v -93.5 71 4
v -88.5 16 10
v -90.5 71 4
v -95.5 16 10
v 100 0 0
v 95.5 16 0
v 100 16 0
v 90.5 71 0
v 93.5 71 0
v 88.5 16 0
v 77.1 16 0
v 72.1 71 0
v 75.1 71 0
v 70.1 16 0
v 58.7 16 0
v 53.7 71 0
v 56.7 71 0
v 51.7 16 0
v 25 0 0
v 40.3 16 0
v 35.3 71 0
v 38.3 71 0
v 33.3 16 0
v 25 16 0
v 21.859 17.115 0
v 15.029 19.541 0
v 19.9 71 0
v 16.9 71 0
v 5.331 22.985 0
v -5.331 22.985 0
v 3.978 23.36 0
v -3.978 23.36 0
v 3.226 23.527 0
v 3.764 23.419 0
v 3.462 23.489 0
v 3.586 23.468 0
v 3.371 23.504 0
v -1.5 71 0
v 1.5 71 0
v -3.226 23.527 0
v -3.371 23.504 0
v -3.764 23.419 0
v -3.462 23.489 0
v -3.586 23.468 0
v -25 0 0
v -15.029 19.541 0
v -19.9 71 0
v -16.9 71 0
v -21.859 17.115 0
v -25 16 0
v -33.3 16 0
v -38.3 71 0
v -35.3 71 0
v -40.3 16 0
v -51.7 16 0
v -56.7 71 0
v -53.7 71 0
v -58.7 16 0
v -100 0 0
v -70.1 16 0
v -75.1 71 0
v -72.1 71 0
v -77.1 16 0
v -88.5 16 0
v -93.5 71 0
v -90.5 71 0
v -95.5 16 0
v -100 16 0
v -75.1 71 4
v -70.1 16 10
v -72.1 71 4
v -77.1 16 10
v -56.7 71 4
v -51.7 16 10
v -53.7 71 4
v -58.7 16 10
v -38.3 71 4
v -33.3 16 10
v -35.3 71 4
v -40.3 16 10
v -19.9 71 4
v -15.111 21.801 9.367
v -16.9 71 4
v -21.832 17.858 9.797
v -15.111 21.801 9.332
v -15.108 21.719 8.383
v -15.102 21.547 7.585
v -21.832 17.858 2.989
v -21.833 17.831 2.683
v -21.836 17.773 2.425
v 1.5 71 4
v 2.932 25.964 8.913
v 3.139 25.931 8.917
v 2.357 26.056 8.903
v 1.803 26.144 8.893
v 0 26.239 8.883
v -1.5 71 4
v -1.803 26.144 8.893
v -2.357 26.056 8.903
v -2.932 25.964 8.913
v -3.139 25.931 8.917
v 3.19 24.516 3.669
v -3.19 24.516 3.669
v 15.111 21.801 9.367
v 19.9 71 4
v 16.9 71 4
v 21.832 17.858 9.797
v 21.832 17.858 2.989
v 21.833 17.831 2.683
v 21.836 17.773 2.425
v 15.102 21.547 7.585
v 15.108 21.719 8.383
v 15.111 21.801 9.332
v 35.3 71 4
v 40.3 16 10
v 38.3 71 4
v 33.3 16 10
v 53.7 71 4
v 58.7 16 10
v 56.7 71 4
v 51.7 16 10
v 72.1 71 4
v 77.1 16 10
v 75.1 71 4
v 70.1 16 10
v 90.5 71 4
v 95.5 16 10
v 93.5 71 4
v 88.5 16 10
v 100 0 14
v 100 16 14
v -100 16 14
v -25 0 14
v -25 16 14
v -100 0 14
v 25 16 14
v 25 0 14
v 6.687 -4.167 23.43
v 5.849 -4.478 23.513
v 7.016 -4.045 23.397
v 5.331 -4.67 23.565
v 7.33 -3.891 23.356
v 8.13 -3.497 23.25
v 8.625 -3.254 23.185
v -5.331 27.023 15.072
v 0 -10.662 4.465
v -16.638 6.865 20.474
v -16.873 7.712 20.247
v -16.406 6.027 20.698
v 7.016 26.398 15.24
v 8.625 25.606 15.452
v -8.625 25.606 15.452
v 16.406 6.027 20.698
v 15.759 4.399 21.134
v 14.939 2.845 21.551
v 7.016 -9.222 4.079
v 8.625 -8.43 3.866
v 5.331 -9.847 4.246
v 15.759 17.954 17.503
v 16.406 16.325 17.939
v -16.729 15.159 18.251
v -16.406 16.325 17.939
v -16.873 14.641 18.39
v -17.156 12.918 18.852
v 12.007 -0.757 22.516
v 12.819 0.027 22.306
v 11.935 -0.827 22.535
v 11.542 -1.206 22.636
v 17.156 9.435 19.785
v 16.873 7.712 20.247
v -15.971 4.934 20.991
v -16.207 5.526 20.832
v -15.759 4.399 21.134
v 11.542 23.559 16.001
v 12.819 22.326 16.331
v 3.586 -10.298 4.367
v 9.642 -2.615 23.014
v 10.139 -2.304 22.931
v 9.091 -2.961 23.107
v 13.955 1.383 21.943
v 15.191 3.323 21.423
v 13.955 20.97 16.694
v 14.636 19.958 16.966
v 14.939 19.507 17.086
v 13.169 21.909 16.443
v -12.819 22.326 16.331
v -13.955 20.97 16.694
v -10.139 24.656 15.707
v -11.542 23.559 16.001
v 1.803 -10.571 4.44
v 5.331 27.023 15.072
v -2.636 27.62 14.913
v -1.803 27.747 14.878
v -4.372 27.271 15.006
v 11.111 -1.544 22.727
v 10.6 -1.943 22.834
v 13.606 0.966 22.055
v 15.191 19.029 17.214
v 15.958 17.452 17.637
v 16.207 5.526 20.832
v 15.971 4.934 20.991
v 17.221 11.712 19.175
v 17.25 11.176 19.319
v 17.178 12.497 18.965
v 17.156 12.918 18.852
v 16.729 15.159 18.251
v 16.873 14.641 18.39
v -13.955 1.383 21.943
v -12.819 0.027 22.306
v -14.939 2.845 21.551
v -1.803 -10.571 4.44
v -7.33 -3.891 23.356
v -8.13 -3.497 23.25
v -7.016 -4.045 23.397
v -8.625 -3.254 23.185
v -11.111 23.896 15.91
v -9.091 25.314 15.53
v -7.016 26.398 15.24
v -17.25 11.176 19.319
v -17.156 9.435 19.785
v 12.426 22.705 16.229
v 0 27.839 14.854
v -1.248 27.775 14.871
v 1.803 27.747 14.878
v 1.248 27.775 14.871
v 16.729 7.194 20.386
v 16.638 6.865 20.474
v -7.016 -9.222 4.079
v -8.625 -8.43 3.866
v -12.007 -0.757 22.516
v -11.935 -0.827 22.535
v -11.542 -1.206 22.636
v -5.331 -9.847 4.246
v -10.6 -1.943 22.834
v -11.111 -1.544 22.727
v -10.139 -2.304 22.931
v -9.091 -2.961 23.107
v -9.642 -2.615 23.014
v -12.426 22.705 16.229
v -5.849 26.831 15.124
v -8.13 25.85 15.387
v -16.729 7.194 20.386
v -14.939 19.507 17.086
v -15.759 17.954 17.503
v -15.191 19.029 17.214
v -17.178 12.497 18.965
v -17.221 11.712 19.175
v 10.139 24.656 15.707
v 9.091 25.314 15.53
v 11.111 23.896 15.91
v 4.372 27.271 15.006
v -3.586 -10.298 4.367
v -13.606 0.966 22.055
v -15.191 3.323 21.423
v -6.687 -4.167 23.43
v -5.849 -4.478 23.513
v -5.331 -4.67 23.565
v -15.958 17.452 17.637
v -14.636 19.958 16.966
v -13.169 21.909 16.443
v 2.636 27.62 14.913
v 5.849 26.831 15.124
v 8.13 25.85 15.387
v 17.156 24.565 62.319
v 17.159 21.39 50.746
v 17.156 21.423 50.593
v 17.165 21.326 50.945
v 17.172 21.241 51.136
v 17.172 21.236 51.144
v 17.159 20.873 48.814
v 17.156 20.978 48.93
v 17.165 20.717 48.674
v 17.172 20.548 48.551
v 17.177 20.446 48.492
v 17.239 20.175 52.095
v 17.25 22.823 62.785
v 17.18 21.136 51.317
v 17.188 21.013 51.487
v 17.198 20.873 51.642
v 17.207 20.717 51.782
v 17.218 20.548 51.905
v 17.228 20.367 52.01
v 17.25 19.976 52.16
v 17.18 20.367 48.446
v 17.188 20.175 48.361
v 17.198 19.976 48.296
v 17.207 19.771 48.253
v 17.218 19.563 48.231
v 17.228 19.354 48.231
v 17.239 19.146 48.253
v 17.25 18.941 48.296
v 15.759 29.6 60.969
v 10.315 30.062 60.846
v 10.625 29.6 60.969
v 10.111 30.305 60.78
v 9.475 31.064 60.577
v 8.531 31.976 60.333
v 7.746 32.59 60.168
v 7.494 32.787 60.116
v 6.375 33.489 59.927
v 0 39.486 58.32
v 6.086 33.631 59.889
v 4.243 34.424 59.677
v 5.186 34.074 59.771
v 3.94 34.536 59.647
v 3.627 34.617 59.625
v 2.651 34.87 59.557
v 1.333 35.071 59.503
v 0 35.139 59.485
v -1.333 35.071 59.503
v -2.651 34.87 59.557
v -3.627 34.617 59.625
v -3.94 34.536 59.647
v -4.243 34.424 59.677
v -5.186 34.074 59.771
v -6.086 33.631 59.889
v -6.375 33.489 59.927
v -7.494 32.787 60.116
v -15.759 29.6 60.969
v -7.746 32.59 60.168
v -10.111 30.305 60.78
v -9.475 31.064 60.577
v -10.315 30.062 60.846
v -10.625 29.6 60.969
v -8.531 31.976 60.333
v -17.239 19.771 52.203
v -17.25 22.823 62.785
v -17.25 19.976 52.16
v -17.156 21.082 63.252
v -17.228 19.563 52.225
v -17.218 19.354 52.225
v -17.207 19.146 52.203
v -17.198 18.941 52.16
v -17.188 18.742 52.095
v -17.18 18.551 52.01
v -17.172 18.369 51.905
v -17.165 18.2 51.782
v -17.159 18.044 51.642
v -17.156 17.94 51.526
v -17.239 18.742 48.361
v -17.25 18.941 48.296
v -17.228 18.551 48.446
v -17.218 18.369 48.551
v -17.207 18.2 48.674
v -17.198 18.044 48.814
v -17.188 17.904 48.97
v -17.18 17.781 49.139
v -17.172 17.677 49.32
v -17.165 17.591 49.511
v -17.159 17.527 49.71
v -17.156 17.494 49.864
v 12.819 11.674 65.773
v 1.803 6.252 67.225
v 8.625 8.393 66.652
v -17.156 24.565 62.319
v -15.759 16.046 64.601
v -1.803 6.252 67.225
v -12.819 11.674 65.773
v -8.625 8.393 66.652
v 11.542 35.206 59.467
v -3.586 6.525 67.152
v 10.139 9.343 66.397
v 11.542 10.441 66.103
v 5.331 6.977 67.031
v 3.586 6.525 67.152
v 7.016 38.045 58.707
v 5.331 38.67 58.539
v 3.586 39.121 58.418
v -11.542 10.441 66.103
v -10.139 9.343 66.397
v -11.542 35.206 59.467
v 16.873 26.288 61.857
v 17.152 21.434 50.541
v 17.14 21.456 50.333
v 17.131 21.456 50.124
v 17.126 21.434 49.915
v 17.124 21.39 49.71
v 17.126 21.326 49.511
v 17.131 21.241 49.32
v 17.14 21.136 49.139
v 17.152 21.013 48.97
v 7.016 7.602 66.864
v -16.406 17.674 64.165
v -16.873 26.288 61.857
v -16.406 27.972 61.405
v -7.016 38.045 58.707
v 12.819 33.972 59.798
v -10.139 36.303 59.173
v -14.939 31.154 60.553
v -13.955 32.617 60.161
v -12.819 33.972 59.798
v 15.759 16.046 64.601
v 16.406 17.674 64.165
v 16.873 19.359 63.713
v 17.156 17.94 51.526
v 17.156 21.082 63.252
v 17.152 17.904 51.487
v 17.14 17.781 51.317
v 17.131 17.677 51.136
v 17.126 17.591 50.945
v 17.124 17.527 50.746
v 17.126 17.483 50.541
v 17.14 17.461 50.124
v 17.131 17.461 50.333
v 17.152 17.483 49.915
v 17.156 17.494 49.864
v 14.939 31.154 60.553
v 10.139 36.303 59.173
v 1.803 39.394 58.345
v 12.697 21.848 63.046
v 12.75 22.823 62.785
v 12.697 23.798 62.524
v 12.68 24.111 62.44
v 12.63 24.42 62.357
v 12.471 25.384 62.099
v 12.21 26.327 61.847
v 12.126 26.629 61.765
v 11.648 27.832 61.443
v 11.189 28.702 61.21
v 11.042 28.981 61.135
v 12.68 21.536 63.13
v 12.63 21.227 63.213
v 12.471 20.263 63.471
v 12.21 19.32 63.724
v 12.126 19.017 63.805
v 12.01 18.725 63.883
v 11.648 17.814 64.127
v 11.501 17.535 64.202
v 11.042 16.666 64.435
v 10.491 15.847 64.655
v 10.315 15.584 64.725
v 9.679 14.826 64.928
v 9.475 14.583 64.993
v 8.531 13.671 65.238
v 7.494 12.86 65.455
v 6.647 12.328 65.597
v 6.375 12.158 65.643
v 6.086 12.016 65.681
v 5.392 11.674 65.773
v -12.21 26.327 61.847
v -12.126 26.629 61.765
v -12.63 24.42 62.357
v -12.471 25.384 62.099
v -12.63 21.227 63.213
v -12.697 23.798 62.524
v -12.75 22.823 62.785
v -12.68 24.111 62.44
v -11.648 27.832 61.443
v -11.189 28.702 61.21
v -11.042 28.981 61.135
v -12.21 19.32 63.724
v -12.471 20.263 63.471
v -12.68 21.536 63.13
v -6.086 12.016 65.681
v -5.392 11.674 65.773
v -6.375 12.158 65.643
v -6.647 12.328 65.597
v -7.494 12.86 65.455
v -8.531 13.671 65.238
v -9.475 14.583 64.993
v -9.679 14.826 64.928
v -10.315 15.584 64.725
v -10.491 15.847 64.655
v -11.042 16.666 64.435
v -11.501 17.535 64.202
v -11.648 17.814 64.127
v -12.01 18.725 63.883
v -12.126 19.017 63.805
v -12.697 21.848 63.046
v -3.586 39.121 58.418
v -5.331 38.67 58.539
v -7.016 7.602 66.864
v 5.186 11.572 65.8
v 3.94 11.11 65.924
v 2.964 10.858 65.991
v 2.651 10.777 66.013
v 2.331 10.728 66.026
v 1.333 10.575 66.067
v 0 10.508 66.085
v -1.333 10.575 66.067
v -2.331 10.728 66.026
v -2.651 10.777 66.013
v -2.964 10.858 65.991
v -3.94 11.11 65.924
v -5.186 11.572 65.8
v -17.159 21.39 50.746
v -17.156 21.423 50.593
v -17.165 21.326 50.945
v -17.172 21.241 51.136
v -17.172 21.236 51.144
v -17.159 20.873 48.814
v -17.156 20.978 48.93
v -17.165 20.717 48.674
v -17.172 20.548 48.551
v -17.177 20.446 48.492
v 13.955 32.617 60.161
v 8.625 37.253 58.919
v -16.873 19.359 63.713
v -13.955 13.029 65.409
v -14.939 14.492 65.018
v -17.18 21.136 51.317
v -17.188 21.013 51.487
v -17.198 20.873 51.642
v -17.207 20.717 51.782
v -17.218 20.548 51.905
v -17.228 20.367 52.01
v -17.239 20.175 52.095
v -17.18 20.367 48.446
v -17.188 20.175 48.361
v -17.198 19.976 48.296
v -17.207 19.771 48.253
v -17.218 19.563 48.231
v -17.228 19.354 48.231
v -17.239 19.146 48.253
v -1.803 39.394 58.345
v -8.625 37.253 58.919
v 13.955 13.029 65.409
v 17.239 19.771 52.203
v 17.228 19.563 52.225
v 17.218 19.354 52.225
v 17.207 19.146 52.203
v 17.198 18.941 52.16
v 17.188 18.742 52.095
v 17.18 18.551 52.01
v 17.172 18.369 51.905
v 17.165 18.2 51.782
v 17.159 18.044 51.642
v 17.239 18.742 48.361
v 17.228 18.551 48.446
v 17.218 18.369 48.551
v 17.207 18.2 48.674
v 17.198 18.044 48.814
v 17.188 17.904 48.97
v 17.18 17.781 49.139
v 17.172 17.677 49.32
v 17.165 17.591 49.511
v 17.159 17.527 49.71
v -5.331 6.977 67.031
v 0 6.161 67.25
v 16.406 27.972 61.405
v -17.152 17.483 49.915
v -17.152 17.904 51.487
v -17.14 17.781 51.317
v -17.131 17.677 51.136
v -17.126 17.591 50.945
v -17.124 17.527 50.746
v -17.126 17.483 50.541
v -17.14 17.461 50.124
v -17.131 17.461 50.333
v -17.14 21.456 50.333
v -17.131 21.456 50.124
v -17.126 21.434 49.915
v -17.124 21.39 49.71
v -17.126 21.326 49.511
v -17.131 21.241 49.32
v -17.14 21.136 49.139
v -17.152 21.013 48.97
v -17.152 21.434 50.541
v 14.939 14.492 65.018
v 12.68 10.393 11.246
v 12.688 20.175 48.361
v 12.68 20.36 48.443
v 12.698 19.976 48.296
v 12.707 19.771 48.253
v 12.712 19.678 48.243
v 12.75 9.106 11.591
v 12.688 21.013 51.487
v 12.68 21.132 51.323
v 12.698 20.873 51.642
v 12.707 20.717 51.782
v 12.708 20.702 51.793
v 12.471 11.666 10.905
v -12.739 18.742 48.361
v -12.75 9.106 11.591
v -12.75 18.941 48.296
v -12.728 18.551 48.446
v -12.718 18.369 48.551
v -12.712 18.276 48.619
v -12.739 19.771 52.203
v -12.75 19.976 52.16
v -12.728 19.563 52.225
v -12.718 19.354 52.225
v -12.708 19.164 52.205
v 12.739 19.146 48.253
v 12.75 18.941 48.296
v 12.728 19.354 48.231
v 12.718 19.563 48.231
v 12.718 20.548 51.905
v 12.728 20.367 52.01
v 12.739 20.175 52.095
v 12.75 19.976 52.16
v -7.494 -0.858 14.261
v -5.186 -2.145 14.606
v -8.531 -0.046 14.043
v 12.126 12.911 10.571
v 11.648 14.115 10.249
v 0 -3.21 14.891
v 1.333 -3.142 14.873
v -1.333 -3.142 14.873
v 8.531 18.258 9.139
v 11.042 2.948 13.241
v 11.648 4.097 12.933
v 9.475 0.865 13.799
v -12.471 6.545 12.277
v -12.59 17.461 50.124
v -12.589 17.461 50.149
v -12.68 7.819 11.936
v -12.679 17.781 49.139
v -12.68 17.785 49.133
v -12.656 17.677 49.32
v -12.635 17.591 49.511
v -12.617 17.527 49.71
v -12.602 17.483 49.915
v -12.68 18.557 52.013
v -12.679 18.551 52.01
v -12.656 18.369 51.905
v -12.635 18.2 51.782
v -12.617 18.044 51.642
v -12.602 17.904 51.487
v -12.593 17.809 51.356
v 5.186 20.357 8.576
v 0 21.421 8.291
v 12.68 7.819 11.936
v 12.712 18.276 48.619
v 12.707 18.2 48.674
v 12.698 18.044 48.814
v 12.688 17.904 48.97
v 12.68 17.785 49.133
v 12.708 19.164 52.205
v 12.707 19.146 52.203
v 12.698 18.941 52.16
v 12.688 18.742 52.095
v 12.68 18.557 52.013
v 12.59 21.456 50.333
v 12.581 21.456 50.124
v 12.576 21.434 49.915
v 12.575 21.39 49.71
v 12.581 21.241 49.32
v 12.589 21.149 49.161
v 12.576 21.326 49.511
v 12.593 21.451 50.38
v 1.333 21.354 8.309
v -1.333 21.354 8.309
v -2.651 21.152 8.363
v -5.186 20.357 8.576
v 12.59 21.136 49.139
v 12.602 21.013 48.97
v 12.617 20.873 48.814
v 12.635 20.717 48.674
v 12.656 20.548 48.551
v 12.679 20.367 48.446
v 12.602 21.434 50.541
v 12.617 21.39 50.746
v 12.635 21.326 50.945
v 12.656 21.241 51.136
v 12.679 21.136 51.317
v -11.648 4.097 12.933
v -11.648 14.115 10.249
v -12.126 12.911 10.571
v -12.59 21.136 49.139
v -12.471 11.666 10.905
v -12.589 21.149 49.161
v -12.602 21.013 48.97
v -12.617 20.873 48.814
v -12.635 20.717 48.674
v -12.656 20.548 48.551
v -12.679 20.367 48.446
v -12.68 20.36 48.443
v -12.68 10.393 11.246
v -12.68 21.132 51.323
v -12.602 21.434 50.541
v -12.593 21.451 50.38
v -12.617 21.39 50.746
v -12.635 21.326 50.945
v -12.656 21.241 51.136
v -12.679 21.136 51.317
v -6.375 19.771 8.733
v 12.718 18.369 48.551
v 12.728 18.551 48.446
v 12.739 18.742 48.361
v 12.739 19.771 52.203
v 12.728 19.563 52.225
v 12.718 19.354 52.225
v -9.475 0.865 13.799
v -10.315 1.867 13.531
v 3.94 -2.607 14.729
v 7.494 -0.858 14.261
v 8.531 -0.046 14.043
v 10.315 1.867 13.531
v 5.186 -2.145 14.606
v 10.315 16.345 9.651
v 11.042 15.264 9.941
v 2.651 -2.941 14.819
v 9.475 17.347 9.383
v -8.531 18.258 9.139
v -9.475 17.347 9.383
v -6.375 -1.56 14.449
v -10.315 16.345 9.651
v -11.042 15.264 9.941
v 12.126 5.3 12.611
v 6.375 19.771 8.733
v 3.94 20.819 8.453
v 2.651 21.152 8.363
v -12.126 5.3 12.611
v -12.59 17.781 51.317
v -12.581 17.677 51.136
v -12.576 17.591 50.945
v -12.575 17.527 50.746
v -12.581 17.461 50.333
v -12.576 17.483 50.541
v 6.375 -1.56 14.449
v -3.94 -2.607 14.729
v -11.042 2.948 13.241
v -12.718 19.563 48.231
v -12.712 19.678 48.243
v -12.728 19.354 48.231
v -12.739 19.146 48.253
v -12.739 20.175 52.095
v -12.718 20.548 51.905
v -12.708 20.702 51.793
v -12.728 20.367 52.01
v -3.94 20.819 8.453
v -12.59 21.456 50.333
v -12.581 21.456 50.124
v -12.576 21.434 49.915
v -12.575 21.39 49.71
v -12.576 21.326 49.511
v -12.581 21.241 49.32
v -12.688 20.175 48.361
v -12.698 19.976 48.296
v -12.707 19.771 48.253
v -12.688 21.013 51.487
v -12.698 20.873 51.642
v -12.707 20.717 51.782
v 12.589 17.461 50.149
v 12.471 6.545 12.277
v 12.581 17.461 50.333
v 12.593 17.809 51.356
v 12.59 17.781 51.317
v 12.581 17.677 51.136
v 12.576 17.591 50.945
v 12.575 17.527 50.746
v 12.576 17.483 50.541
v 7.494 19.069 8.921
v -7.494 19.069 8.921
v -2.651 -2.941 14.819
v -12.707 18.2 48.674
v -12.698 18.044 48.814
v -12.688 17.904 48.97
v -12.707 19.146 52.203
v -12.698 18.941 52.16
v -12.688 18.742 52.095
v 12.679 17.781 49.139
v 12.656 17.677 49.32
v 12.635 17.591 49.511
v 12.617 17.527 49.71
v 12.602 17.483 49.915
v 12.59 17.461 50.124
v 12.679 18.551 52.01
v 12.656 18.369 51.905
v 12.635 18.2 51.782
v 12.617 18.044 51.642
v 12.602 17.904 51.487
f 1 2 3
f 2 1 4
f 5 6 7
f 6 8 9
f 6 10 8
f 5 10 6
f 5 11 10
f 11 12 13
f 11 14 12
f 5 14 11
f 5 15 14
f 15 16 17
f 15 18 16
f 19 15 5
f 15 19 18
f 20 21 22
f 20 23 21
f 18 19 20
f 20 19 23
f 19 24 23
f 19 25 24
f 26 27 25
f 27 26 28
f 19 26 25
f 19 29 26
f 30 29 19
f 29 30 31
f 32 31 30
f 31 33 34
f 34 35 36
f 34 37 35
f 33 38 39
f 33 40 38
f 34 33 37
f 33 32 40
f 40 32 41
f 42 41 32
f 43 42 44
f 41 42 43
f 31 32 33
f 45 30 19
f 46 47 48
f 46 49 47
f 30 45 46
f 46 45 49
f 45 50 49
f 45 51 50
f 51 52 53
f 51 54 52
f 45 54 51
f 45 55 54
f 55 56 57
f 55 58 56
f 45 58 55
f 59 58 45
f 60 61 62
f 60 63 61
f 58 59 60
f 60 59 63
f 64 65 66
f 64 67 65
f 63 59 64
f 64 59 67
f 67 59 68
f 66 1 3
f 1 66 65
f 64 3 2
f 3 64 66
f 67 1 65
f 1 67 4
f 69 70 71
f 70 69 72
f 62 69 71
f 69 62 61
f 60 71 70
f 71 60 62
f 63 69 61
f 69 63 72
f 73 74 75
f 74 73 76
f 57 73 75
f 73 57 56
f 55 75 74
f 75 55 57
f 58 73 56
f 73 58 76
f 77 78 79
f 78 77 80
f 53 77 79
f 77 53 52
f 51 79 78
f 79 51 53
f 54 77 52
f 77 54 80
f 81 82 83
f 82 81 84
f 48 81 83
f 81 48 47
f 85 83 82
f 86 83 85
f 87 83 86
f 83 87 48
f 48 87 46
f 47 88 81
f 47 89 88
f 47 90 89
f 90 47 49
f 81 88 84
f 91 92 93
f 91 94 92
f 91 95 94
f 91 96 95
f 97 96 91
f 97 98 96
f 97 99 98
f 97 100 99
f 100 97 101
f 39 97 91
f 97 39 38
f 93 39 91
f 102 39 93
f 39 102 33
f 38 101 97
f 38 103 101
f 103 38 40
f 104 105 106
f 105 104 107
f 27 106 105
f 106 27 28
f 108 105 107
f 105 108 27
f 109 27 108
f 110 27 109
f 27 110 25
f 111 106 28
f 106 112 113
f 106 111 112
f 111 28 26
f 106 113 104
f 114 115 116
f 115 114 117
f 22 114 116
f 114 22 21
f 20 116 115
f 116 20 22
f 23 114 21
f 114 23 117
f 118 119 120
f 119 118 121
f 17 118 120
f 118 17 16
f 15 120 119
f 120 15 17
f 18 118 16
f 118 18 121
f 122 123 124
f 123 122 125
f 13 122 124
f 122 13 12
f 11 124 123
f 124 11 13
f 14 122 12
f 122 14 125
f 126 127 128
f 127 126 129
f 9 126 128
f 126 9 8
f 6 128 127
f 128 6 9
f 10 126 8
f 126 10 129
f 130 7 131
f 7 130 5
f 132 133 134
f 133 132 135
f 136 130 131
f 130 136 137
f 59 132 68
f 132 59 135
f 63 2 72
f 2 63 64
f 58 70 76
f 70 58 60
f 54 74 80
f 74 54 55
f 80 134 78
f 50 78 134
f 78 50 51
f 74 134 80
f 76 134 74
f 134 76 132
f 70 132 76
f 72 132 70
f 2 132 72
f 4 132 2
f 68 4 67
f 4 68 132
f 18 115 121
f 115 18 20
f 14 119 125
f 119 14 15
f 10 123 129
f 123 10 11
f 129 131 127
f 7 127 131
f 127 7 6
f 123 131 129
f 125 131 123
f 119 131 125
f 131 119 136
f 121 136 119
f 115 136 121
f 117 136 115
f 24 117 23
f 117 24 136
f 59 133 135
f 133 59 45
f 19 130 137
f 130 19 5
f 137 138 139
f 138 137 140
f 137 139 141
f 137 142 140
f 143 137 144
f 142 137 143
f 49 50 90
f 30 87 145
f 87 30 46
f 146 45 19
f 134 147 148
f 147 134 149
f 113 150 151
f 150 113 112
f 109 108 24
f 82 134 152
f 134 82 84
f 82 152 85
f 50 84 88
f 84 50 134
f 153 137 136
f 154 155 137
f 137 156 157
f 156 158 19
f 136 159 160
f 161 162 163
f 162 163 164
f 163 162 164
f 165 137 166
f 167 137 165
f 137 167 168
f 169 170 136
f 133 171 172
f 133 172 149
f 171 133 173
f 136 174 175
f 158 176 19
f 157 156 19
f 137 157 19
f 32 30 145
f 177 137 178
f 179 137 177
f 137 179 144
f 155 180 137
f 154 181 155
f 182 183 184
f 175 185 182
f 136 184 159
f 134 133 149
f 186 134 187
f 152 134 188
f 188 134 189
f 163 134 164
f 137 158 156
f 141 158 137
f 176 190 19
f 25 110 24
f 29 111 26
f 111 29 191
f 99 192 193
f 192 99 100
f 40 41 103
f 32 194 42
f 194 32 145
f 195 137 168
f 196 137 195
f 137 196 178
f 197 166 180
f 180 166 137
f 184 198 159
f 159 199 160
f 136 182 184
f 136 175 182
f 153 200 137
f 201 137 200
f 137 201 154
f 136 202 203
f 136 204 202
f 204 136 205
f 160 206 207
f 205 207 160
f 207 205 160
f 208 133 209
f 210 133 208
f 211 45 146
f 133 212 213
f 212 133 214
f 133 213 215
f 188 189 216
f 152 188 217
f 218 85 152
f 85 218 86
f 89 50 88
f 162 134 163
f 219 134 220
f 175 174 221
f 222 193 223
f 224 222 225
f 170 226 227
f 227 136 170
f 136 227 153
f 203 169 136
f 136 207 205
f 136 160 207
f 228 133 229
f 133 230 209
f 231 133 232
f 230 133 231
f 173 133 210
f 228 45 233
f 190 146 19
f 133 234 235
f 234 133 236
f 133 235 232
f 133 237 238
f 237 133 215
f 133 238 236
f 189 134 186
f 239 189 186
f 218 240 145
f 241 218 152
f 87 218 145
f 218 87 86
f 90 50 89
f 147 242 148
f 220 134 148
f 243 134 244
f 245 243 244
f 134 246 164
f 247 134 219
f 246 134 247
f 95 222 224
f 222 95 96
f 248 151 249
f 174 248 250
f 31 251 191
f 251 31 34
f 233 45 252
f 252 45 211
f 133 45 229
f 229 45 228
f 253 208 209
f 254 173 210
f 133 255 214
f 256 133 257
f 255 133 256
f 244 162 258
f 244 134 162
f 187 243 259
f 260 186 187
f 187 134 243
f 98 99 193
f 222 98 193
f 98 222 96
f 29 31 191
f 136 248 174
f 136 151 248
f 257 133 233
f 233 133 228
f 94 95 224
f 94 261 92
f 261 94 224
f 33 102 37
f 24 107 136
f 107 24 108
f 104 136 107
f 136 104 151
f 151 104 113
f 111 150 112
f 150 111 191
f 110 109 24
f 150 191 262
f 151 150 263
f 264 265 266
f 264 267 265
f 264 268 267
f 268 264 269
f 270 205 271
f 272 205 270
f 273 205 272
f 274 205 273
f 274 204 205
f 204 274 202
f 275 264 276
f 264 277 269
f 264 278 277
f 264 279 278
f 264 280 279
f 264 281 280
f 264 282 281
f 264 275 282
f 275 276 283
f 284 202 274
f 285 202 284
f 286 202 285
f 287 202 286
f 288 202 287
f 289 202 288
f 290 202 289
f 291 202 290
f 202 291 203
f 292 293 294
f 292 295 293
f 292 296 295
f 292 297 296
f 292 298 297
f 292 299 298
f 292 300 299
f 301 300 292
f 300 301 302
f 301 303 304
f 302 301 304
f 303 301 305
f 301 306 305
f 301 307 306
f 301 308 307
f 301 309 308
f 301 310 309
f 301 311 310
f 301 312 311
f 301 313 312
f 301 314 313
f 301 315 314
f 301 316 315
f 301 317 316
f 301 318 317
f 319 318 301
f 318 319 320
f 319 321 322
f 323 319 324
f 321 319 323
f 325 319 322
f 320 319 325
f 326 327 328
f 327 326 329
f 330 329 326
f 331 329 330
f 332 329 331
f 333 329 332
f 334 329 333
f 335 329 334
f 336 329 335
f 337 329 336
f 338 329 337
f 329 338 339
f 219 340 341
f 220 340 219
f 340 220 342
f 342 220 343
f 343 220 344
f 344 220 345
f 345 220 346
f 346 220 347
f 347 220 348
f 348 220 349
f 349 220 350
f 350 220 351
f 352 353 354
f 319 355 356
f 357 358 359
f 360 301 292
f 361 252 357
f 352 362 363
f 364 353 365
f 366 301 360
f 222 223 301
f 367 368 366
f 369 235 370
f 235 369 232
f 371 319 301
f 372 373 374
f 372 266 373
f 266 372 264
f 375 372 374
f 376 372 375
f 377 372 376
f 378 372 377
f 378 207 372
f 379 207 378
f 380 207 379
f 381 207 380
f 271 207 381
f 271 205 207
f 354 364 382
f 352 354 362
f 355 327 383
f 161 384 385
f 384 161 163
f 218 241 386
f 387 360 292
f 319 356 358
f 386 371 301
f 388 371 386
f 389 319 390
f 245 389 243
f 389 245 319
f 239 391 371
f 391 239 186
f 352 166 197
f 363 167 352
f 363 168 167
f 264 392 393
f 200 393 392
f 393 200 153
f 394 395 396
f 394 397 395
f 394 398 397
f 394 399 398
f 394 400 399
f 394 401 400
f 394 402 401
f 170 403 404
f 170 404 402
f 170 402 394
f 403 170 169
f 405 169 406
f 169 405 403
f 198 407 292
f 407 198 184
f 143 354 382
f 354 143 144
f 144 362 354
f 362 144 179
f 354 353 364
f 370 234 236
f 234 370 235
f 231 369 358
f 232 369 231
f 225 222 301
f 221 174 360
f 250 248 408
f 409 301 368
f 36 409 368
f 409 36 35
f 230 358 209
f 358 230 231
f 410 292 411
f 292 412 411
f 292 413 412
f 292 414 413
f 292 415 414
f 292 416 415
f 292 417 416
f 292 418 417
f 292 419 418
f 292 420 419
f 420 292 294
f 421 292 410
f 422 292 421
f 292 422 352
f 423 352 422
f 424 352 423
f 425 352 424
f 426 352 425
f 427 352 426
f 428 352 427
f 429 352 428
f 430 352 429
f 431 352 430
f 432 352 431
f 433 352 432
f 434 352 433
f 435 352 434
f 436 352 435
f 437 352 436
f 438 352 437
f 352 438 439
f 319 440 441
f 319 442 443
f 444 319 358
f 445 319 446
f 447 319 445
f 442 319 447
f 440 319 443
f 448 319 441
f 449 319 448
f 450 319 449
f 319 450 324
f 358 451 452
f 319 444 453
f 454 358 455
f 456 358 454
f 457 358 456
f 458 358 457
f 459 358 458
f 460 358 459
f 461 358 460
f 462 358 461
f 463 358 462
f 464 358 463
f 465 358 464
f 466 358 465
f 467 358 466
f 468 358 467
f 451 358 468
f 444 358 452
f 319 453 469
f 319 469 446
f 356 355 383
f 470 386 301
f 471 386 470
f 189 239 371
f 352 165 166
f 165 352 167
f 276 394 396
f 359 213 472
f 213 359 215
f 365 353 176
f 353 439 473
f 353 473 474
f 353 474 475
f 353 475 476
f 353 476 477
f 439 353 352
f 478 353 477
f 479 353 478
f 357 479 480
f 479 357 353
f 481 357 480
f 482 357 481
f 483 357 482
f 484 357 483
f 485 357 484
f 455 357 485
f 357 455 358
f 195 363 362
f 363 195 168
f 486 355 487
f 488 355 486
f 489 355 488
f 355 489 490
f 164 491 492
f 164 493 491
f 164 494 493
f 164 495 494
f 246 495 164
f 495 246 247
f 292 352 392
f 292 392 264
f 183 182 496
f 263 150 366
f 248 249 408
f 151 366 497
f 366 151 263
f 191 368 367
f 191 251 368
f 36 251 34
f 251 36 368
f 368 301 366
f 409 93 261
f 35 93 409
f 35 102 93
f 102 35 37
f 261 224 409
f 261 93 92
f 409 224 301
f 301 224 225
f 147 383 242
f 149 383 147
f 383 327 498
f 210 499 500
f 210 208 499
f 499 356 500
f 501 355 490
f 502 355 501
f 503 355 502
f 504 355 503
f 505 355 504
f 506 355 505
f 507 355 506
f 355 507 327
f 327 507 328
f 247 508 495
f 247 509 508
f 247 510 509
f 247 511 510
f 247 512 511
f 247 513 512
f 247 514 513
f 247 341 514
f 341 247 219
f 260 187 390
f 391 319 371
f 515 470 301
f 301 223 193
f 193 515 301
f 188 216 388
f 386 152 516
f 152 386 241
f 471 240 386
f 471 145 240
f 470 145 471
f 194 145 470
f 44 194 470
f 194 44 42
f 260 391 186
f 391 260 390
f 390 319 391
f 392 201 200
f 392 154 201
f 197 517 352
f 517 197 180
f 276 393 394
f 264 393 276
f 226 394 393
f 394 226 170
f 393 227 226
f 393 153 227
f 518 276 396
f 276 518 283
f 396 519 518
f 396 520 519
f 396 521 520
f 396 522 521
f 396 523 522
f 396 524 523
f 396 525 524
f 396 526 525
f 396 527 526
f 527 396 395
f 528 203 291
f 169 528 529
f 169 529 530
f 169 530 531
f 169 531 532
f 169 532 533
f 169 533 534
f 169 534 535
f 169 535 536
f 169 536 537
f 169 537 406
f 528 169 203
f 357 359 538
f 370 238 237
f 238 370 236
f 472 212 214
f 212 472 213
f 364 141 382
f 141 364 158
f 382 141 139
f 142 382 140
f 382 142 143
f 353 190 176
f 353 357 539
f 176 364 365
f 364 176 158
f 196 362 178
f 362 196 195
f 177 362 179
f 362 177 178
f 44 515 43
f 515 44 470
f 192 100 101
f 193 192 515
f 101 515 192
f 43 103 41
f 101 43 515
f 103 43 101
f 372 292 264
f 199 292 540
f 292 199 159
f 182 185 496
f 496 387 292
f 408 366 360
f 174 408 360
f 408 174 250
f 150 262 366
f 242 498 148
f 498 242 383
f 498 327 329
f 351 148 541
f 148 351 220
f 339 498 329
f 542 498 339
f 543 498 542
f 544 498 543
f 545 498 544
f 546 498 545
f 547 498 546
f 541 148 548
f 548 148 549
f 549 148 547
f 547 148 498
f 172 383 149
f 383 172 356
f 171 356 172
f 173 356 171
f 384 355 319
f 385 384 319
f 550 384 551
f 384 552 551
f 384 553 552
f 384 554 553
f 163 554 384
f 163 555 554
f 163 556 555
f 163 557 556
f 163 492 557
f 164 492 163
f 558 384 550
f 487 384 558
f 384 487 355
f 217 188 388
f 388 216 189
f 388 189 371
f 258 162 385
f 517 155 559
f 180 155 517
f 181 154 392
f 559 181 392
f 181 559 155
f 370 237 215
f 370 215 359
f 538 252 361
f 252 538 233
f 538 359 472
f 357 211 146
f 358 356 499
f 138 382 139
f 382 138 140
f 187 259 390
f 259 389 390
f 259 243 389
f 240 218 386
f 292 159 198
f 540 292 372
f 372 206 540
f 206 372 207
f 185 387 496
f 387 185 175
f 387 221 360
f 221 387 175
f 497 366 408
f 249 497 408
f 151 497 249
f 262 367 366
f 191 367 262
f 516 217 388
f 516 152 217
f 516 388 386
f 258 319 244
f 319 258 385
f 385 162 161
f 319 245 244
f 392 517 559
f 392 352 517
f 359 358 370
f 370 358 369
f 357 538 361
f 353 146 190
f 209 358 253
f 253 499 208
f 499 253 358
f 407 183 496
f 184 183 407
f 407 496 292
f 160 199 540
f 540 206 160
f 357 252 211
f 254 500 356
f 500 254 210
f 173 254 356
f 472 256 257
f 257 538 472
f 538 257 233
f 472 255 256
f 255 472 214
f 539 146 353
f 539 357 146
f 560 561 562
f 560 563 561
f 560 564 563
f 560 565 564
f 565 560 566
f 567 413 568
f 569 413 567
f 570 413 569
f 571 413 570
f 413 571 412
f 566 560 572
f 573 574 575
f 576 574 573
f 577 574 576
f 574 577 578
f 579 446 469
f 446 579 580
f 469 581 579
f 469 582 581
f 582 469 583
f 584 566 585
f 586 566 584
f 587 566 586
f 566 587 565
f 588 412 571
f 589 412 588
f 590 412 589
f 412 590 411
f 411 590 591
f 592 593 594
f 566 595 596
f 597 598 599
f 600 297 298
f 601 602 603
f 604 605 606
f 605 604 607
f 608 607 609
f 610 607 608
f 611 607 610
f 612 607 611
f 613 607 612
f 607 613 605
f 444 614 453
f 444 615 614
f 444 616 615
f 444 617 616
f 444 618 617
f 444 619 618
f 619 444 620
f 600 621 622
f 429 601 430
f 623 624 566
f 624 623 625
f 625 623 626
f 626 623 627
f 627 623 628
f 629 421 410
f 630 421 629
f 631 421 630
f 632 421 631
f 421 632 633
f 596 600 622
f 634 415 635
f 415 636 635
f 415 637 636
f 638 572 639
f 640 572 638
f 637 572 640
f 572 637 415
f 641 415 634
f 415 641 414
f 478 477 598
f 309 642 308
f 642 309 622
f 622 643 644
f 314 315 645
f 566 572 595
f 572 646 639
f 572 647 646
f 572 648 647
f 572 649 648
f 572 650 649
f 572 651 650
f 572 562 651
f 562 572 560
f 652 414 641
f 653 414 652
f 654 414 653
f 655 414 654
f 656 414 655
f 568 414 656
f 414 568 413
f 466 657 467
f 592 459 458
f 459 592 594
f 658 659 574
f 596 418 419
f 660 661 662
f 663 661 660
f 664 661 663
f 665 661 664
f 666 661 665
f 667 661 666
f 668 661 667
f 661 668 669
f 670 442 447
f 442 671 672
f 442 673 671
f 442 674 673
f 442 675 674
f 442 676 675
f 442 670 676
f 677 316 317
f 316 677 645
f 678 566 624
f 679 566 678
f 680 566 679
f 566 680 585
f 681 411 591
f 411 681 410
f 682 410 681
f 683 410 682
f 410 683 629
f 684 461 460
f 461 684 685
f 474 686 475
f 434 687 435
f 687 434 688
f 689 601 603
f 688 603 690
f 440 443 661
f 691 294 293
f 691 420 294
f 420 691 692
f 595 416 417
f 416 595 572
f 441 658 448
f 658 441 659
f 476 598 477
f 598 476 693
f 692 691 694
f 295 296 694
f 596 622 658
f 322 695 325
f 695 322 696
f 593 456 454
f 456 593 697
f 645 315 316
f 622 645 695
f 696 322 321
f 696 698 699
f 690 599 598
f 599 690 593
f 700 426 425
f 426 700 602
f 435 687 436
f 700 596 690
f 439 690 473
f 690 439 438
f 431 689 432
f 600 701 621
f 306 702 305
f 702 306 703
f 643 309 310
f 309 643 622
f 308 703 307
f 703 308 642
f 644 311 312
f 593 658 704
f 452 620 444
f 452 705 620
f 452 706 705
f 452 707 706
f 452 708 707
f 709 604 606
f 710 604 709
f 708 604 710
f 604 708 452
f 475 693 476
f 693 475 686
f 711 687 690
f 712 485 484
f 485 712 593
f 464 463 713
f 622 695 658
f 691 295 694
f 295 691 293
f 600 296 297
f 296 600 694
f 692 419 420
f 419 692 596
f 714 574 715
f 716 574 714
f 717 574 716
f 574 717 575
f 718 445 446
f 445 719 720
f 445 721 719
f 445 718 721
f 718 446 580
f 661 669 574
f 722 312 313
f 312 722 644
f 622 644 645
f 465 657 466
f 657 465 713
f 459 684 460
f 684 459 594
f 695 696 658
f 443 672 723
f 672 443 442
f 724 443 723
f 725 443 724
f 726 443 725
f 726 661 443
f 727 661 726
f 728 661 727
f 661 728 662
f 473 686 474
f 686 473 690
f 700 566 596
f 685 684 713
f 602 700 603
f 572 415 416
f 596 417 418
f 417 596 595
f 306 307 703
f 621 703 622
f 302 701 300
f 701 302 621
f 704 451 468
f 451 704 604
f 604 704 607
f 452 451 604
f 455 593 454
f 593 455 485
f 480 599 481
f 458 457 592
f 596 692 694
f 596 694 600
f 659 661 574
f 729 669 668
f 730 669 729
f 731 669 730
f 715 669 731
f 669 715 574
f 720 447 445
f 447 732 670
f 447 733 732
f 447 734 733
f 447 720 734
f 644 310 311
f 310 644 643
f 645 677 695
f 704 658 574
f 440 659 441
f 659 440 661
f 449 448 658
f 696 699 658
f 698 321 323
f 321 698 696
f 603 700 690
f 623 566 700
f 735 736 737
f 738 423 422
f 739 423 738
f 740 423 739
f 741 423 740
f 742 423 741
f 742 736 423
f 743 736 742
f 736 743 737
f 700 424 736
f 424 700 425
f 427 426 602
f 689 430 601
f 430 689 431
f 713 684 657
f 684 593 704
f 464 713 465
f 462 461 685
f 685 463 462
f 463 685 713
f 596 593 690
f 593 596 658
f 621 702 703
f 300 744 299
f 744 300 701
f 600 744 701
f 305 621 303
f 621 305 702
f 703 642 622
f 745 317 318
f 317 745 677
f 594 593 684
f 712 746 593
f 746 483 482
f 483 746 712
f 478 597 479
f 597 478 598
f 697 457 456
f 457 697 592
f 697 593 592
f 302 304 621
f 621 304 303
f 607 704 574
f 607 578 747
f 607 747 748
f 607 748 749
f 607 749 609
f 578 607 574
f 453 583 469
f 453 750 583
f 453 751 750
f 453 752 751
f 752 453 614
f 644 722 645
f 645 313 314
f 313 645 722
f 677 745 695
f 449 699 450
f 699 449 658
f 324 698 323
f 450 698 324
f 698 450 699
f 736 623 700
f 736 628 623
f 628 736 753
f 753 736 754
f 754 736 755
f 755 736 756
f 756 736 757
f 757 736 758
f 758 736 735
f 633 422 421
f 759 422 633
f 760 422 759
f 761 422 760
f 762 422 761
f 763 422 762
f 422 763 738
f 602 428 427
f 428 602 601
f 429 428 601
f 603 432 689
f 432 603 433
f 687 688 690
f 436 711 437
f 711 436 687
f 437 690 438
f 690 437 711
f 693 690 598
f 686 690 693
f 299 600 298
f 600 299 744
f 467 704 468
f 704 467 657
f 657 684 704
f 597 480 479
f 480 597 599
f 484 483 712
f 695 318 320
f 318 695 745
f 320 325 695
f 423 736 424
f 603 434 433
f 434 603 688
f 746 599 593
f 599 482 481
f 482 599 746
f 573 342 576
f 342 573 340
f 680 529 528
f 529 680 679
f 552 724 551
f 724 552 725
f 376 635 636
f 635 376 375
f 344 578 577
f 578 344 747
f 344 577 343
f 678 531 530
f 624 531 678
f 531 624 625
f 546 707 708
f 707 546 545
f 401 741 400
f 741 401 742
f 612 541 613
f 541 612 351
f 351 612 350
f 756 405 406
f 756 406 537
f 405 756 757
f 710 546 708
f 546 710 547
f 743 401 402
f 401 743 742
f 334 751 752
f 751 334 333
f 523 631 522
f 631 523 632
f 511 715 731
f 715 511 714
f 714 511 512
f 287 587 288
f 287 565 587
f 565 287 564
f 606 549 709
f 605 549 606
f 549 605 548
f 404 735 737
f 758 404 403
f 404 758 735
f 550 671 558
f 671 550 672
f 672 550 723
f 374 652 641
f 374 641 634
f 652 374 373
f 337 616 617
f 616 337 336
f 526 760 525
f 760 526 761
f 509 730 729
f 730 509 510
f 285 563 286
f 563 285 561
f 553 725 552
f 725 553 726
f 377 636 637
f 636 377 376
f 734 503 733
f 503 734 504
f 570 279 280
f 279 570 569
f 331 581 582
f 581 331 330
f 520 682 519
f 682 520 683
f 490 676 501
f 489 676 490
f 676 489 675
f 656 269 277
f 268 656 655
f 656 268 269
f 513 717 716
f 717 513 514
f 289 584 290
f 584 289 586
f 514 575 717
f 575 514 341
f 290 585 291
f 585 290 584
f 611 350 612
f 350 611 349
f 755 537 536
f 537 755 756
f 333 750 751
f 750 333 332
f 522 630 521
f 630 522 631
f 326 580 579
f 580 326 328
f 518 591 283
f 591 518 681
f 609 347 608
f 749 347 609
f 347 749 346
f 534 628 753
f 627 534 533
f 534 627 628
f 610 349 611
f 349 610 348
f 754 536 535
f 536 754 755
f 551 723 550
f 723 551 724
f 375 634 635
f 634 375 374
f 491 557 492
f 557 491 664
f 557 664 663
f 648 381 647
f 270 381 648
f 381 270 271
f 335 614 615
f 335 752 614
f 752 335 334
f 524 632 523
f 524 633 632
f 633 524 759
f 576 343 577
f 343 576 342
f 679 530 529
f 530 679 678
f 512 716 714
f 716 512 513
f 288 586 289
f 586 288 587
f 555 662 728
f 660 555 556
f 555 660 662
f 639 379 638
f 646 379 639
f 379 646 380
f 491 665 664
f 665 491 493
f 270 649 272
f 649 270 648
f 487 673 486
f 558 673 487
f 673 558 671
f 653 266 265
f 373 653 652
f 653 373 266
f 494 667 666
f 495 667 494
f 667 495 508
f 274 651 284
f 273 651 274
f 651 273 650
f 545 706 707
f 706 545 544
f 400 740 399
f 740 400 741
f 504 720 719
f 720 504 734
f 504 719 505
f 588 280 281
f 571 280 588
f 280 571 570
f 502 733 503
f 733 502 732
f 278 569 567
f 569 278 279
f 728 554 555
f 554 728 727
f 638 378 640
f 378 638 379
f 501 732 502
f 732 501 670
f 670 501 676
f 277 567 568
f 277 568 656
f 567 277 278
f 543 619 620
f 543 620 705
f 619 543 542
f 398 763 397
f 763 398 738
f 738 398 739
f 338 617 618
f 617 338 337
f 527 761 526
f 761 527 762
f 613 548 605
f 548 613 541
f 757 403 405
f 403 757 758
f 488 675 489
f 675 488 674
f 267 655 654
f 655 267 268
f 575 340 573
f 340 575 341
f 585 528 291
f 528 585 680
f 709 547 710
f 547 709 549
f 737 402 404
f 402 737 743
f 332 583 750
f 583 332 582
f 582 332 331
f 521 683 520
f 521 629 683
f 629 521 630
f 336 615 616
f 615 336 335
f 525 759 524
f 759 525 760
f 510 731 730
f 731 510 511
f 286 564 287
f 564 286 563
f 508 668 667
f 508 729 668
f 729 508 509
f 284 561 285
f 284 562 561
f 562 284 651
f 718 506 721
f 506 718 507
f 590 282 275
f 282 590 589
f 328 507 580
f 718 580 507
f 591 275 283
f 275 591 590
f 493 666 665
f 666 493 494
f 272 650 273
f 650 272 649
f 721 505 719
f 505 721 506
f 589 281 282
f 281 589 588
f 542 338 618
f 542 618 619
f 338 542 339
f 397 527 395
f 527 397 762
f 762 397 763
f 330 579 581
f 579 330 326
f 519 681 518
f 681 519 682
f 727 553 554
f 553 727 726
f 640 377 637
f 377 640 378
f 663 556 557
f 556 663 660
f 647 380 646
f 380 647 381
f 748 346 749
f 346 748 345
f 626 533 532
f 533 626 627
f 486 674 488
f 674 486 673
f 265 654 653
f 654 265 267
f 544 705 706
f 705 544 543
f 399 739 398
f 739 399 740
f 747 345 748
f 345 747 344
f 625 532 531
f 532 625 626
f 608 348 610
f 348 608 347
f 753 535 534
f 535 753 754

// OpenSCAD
// @title Garden Rake Head
// @category Hand Tools
// @material PETG or ABS
// @print 4 perimeters, 40% infill, flat on bed, no supports
// @summary 11-tine rake for leveling beds, gathering straw/leaves and covering seed. Socket takes a 25mm handle.
// @use Fit a 1.2-1.5m stick and pin it. For heavy work, lash a wooden batten behind the tines with wire or cord.

bar_w = 200; tines = 11; tine_len = 55; handle_d = 25.5; wall = 4.5;
$fn = 60;
socket_od = handle_d + 2*wall;

difference() {
  union() {
    translate([-bar_w/2,0,0]) cube([bar_w,16,14]);
    for (i=[0:tines-1]) {
      x = -bar_w/2 + 8 + i*(bar_w-16)/(tines-1);
      hull() {
        translate([x-3.5,8,0]) cube([7,8,10]);
        translate([x-1.5,16+tine_len-2,0]) cube([3,2,4]);
      }
    }
    hull() {
      translate([-25,0,0]) cube([50,16,14]);
      translate([0,6,0]) rotate([-15,0,0]) cylinder(d=socket_od, h=20);
    }
    translate([0,6,0]) rotate([-15,0,0]) cylinder(d=socket_od, h=65);
  }
  translate([0,6,0]) rotate([-15,0,0]) translate([0,0,12]) cylinder(d=handle_d, h=70);
  translate([0,6,0]) rotate([-15,0,0]) translate([0,0,52]) rotate([0,90,0]) cylinder(d=4, h=60, center=true);
  translate([-300,-300,-100]) cube([600,600,100]);
}
